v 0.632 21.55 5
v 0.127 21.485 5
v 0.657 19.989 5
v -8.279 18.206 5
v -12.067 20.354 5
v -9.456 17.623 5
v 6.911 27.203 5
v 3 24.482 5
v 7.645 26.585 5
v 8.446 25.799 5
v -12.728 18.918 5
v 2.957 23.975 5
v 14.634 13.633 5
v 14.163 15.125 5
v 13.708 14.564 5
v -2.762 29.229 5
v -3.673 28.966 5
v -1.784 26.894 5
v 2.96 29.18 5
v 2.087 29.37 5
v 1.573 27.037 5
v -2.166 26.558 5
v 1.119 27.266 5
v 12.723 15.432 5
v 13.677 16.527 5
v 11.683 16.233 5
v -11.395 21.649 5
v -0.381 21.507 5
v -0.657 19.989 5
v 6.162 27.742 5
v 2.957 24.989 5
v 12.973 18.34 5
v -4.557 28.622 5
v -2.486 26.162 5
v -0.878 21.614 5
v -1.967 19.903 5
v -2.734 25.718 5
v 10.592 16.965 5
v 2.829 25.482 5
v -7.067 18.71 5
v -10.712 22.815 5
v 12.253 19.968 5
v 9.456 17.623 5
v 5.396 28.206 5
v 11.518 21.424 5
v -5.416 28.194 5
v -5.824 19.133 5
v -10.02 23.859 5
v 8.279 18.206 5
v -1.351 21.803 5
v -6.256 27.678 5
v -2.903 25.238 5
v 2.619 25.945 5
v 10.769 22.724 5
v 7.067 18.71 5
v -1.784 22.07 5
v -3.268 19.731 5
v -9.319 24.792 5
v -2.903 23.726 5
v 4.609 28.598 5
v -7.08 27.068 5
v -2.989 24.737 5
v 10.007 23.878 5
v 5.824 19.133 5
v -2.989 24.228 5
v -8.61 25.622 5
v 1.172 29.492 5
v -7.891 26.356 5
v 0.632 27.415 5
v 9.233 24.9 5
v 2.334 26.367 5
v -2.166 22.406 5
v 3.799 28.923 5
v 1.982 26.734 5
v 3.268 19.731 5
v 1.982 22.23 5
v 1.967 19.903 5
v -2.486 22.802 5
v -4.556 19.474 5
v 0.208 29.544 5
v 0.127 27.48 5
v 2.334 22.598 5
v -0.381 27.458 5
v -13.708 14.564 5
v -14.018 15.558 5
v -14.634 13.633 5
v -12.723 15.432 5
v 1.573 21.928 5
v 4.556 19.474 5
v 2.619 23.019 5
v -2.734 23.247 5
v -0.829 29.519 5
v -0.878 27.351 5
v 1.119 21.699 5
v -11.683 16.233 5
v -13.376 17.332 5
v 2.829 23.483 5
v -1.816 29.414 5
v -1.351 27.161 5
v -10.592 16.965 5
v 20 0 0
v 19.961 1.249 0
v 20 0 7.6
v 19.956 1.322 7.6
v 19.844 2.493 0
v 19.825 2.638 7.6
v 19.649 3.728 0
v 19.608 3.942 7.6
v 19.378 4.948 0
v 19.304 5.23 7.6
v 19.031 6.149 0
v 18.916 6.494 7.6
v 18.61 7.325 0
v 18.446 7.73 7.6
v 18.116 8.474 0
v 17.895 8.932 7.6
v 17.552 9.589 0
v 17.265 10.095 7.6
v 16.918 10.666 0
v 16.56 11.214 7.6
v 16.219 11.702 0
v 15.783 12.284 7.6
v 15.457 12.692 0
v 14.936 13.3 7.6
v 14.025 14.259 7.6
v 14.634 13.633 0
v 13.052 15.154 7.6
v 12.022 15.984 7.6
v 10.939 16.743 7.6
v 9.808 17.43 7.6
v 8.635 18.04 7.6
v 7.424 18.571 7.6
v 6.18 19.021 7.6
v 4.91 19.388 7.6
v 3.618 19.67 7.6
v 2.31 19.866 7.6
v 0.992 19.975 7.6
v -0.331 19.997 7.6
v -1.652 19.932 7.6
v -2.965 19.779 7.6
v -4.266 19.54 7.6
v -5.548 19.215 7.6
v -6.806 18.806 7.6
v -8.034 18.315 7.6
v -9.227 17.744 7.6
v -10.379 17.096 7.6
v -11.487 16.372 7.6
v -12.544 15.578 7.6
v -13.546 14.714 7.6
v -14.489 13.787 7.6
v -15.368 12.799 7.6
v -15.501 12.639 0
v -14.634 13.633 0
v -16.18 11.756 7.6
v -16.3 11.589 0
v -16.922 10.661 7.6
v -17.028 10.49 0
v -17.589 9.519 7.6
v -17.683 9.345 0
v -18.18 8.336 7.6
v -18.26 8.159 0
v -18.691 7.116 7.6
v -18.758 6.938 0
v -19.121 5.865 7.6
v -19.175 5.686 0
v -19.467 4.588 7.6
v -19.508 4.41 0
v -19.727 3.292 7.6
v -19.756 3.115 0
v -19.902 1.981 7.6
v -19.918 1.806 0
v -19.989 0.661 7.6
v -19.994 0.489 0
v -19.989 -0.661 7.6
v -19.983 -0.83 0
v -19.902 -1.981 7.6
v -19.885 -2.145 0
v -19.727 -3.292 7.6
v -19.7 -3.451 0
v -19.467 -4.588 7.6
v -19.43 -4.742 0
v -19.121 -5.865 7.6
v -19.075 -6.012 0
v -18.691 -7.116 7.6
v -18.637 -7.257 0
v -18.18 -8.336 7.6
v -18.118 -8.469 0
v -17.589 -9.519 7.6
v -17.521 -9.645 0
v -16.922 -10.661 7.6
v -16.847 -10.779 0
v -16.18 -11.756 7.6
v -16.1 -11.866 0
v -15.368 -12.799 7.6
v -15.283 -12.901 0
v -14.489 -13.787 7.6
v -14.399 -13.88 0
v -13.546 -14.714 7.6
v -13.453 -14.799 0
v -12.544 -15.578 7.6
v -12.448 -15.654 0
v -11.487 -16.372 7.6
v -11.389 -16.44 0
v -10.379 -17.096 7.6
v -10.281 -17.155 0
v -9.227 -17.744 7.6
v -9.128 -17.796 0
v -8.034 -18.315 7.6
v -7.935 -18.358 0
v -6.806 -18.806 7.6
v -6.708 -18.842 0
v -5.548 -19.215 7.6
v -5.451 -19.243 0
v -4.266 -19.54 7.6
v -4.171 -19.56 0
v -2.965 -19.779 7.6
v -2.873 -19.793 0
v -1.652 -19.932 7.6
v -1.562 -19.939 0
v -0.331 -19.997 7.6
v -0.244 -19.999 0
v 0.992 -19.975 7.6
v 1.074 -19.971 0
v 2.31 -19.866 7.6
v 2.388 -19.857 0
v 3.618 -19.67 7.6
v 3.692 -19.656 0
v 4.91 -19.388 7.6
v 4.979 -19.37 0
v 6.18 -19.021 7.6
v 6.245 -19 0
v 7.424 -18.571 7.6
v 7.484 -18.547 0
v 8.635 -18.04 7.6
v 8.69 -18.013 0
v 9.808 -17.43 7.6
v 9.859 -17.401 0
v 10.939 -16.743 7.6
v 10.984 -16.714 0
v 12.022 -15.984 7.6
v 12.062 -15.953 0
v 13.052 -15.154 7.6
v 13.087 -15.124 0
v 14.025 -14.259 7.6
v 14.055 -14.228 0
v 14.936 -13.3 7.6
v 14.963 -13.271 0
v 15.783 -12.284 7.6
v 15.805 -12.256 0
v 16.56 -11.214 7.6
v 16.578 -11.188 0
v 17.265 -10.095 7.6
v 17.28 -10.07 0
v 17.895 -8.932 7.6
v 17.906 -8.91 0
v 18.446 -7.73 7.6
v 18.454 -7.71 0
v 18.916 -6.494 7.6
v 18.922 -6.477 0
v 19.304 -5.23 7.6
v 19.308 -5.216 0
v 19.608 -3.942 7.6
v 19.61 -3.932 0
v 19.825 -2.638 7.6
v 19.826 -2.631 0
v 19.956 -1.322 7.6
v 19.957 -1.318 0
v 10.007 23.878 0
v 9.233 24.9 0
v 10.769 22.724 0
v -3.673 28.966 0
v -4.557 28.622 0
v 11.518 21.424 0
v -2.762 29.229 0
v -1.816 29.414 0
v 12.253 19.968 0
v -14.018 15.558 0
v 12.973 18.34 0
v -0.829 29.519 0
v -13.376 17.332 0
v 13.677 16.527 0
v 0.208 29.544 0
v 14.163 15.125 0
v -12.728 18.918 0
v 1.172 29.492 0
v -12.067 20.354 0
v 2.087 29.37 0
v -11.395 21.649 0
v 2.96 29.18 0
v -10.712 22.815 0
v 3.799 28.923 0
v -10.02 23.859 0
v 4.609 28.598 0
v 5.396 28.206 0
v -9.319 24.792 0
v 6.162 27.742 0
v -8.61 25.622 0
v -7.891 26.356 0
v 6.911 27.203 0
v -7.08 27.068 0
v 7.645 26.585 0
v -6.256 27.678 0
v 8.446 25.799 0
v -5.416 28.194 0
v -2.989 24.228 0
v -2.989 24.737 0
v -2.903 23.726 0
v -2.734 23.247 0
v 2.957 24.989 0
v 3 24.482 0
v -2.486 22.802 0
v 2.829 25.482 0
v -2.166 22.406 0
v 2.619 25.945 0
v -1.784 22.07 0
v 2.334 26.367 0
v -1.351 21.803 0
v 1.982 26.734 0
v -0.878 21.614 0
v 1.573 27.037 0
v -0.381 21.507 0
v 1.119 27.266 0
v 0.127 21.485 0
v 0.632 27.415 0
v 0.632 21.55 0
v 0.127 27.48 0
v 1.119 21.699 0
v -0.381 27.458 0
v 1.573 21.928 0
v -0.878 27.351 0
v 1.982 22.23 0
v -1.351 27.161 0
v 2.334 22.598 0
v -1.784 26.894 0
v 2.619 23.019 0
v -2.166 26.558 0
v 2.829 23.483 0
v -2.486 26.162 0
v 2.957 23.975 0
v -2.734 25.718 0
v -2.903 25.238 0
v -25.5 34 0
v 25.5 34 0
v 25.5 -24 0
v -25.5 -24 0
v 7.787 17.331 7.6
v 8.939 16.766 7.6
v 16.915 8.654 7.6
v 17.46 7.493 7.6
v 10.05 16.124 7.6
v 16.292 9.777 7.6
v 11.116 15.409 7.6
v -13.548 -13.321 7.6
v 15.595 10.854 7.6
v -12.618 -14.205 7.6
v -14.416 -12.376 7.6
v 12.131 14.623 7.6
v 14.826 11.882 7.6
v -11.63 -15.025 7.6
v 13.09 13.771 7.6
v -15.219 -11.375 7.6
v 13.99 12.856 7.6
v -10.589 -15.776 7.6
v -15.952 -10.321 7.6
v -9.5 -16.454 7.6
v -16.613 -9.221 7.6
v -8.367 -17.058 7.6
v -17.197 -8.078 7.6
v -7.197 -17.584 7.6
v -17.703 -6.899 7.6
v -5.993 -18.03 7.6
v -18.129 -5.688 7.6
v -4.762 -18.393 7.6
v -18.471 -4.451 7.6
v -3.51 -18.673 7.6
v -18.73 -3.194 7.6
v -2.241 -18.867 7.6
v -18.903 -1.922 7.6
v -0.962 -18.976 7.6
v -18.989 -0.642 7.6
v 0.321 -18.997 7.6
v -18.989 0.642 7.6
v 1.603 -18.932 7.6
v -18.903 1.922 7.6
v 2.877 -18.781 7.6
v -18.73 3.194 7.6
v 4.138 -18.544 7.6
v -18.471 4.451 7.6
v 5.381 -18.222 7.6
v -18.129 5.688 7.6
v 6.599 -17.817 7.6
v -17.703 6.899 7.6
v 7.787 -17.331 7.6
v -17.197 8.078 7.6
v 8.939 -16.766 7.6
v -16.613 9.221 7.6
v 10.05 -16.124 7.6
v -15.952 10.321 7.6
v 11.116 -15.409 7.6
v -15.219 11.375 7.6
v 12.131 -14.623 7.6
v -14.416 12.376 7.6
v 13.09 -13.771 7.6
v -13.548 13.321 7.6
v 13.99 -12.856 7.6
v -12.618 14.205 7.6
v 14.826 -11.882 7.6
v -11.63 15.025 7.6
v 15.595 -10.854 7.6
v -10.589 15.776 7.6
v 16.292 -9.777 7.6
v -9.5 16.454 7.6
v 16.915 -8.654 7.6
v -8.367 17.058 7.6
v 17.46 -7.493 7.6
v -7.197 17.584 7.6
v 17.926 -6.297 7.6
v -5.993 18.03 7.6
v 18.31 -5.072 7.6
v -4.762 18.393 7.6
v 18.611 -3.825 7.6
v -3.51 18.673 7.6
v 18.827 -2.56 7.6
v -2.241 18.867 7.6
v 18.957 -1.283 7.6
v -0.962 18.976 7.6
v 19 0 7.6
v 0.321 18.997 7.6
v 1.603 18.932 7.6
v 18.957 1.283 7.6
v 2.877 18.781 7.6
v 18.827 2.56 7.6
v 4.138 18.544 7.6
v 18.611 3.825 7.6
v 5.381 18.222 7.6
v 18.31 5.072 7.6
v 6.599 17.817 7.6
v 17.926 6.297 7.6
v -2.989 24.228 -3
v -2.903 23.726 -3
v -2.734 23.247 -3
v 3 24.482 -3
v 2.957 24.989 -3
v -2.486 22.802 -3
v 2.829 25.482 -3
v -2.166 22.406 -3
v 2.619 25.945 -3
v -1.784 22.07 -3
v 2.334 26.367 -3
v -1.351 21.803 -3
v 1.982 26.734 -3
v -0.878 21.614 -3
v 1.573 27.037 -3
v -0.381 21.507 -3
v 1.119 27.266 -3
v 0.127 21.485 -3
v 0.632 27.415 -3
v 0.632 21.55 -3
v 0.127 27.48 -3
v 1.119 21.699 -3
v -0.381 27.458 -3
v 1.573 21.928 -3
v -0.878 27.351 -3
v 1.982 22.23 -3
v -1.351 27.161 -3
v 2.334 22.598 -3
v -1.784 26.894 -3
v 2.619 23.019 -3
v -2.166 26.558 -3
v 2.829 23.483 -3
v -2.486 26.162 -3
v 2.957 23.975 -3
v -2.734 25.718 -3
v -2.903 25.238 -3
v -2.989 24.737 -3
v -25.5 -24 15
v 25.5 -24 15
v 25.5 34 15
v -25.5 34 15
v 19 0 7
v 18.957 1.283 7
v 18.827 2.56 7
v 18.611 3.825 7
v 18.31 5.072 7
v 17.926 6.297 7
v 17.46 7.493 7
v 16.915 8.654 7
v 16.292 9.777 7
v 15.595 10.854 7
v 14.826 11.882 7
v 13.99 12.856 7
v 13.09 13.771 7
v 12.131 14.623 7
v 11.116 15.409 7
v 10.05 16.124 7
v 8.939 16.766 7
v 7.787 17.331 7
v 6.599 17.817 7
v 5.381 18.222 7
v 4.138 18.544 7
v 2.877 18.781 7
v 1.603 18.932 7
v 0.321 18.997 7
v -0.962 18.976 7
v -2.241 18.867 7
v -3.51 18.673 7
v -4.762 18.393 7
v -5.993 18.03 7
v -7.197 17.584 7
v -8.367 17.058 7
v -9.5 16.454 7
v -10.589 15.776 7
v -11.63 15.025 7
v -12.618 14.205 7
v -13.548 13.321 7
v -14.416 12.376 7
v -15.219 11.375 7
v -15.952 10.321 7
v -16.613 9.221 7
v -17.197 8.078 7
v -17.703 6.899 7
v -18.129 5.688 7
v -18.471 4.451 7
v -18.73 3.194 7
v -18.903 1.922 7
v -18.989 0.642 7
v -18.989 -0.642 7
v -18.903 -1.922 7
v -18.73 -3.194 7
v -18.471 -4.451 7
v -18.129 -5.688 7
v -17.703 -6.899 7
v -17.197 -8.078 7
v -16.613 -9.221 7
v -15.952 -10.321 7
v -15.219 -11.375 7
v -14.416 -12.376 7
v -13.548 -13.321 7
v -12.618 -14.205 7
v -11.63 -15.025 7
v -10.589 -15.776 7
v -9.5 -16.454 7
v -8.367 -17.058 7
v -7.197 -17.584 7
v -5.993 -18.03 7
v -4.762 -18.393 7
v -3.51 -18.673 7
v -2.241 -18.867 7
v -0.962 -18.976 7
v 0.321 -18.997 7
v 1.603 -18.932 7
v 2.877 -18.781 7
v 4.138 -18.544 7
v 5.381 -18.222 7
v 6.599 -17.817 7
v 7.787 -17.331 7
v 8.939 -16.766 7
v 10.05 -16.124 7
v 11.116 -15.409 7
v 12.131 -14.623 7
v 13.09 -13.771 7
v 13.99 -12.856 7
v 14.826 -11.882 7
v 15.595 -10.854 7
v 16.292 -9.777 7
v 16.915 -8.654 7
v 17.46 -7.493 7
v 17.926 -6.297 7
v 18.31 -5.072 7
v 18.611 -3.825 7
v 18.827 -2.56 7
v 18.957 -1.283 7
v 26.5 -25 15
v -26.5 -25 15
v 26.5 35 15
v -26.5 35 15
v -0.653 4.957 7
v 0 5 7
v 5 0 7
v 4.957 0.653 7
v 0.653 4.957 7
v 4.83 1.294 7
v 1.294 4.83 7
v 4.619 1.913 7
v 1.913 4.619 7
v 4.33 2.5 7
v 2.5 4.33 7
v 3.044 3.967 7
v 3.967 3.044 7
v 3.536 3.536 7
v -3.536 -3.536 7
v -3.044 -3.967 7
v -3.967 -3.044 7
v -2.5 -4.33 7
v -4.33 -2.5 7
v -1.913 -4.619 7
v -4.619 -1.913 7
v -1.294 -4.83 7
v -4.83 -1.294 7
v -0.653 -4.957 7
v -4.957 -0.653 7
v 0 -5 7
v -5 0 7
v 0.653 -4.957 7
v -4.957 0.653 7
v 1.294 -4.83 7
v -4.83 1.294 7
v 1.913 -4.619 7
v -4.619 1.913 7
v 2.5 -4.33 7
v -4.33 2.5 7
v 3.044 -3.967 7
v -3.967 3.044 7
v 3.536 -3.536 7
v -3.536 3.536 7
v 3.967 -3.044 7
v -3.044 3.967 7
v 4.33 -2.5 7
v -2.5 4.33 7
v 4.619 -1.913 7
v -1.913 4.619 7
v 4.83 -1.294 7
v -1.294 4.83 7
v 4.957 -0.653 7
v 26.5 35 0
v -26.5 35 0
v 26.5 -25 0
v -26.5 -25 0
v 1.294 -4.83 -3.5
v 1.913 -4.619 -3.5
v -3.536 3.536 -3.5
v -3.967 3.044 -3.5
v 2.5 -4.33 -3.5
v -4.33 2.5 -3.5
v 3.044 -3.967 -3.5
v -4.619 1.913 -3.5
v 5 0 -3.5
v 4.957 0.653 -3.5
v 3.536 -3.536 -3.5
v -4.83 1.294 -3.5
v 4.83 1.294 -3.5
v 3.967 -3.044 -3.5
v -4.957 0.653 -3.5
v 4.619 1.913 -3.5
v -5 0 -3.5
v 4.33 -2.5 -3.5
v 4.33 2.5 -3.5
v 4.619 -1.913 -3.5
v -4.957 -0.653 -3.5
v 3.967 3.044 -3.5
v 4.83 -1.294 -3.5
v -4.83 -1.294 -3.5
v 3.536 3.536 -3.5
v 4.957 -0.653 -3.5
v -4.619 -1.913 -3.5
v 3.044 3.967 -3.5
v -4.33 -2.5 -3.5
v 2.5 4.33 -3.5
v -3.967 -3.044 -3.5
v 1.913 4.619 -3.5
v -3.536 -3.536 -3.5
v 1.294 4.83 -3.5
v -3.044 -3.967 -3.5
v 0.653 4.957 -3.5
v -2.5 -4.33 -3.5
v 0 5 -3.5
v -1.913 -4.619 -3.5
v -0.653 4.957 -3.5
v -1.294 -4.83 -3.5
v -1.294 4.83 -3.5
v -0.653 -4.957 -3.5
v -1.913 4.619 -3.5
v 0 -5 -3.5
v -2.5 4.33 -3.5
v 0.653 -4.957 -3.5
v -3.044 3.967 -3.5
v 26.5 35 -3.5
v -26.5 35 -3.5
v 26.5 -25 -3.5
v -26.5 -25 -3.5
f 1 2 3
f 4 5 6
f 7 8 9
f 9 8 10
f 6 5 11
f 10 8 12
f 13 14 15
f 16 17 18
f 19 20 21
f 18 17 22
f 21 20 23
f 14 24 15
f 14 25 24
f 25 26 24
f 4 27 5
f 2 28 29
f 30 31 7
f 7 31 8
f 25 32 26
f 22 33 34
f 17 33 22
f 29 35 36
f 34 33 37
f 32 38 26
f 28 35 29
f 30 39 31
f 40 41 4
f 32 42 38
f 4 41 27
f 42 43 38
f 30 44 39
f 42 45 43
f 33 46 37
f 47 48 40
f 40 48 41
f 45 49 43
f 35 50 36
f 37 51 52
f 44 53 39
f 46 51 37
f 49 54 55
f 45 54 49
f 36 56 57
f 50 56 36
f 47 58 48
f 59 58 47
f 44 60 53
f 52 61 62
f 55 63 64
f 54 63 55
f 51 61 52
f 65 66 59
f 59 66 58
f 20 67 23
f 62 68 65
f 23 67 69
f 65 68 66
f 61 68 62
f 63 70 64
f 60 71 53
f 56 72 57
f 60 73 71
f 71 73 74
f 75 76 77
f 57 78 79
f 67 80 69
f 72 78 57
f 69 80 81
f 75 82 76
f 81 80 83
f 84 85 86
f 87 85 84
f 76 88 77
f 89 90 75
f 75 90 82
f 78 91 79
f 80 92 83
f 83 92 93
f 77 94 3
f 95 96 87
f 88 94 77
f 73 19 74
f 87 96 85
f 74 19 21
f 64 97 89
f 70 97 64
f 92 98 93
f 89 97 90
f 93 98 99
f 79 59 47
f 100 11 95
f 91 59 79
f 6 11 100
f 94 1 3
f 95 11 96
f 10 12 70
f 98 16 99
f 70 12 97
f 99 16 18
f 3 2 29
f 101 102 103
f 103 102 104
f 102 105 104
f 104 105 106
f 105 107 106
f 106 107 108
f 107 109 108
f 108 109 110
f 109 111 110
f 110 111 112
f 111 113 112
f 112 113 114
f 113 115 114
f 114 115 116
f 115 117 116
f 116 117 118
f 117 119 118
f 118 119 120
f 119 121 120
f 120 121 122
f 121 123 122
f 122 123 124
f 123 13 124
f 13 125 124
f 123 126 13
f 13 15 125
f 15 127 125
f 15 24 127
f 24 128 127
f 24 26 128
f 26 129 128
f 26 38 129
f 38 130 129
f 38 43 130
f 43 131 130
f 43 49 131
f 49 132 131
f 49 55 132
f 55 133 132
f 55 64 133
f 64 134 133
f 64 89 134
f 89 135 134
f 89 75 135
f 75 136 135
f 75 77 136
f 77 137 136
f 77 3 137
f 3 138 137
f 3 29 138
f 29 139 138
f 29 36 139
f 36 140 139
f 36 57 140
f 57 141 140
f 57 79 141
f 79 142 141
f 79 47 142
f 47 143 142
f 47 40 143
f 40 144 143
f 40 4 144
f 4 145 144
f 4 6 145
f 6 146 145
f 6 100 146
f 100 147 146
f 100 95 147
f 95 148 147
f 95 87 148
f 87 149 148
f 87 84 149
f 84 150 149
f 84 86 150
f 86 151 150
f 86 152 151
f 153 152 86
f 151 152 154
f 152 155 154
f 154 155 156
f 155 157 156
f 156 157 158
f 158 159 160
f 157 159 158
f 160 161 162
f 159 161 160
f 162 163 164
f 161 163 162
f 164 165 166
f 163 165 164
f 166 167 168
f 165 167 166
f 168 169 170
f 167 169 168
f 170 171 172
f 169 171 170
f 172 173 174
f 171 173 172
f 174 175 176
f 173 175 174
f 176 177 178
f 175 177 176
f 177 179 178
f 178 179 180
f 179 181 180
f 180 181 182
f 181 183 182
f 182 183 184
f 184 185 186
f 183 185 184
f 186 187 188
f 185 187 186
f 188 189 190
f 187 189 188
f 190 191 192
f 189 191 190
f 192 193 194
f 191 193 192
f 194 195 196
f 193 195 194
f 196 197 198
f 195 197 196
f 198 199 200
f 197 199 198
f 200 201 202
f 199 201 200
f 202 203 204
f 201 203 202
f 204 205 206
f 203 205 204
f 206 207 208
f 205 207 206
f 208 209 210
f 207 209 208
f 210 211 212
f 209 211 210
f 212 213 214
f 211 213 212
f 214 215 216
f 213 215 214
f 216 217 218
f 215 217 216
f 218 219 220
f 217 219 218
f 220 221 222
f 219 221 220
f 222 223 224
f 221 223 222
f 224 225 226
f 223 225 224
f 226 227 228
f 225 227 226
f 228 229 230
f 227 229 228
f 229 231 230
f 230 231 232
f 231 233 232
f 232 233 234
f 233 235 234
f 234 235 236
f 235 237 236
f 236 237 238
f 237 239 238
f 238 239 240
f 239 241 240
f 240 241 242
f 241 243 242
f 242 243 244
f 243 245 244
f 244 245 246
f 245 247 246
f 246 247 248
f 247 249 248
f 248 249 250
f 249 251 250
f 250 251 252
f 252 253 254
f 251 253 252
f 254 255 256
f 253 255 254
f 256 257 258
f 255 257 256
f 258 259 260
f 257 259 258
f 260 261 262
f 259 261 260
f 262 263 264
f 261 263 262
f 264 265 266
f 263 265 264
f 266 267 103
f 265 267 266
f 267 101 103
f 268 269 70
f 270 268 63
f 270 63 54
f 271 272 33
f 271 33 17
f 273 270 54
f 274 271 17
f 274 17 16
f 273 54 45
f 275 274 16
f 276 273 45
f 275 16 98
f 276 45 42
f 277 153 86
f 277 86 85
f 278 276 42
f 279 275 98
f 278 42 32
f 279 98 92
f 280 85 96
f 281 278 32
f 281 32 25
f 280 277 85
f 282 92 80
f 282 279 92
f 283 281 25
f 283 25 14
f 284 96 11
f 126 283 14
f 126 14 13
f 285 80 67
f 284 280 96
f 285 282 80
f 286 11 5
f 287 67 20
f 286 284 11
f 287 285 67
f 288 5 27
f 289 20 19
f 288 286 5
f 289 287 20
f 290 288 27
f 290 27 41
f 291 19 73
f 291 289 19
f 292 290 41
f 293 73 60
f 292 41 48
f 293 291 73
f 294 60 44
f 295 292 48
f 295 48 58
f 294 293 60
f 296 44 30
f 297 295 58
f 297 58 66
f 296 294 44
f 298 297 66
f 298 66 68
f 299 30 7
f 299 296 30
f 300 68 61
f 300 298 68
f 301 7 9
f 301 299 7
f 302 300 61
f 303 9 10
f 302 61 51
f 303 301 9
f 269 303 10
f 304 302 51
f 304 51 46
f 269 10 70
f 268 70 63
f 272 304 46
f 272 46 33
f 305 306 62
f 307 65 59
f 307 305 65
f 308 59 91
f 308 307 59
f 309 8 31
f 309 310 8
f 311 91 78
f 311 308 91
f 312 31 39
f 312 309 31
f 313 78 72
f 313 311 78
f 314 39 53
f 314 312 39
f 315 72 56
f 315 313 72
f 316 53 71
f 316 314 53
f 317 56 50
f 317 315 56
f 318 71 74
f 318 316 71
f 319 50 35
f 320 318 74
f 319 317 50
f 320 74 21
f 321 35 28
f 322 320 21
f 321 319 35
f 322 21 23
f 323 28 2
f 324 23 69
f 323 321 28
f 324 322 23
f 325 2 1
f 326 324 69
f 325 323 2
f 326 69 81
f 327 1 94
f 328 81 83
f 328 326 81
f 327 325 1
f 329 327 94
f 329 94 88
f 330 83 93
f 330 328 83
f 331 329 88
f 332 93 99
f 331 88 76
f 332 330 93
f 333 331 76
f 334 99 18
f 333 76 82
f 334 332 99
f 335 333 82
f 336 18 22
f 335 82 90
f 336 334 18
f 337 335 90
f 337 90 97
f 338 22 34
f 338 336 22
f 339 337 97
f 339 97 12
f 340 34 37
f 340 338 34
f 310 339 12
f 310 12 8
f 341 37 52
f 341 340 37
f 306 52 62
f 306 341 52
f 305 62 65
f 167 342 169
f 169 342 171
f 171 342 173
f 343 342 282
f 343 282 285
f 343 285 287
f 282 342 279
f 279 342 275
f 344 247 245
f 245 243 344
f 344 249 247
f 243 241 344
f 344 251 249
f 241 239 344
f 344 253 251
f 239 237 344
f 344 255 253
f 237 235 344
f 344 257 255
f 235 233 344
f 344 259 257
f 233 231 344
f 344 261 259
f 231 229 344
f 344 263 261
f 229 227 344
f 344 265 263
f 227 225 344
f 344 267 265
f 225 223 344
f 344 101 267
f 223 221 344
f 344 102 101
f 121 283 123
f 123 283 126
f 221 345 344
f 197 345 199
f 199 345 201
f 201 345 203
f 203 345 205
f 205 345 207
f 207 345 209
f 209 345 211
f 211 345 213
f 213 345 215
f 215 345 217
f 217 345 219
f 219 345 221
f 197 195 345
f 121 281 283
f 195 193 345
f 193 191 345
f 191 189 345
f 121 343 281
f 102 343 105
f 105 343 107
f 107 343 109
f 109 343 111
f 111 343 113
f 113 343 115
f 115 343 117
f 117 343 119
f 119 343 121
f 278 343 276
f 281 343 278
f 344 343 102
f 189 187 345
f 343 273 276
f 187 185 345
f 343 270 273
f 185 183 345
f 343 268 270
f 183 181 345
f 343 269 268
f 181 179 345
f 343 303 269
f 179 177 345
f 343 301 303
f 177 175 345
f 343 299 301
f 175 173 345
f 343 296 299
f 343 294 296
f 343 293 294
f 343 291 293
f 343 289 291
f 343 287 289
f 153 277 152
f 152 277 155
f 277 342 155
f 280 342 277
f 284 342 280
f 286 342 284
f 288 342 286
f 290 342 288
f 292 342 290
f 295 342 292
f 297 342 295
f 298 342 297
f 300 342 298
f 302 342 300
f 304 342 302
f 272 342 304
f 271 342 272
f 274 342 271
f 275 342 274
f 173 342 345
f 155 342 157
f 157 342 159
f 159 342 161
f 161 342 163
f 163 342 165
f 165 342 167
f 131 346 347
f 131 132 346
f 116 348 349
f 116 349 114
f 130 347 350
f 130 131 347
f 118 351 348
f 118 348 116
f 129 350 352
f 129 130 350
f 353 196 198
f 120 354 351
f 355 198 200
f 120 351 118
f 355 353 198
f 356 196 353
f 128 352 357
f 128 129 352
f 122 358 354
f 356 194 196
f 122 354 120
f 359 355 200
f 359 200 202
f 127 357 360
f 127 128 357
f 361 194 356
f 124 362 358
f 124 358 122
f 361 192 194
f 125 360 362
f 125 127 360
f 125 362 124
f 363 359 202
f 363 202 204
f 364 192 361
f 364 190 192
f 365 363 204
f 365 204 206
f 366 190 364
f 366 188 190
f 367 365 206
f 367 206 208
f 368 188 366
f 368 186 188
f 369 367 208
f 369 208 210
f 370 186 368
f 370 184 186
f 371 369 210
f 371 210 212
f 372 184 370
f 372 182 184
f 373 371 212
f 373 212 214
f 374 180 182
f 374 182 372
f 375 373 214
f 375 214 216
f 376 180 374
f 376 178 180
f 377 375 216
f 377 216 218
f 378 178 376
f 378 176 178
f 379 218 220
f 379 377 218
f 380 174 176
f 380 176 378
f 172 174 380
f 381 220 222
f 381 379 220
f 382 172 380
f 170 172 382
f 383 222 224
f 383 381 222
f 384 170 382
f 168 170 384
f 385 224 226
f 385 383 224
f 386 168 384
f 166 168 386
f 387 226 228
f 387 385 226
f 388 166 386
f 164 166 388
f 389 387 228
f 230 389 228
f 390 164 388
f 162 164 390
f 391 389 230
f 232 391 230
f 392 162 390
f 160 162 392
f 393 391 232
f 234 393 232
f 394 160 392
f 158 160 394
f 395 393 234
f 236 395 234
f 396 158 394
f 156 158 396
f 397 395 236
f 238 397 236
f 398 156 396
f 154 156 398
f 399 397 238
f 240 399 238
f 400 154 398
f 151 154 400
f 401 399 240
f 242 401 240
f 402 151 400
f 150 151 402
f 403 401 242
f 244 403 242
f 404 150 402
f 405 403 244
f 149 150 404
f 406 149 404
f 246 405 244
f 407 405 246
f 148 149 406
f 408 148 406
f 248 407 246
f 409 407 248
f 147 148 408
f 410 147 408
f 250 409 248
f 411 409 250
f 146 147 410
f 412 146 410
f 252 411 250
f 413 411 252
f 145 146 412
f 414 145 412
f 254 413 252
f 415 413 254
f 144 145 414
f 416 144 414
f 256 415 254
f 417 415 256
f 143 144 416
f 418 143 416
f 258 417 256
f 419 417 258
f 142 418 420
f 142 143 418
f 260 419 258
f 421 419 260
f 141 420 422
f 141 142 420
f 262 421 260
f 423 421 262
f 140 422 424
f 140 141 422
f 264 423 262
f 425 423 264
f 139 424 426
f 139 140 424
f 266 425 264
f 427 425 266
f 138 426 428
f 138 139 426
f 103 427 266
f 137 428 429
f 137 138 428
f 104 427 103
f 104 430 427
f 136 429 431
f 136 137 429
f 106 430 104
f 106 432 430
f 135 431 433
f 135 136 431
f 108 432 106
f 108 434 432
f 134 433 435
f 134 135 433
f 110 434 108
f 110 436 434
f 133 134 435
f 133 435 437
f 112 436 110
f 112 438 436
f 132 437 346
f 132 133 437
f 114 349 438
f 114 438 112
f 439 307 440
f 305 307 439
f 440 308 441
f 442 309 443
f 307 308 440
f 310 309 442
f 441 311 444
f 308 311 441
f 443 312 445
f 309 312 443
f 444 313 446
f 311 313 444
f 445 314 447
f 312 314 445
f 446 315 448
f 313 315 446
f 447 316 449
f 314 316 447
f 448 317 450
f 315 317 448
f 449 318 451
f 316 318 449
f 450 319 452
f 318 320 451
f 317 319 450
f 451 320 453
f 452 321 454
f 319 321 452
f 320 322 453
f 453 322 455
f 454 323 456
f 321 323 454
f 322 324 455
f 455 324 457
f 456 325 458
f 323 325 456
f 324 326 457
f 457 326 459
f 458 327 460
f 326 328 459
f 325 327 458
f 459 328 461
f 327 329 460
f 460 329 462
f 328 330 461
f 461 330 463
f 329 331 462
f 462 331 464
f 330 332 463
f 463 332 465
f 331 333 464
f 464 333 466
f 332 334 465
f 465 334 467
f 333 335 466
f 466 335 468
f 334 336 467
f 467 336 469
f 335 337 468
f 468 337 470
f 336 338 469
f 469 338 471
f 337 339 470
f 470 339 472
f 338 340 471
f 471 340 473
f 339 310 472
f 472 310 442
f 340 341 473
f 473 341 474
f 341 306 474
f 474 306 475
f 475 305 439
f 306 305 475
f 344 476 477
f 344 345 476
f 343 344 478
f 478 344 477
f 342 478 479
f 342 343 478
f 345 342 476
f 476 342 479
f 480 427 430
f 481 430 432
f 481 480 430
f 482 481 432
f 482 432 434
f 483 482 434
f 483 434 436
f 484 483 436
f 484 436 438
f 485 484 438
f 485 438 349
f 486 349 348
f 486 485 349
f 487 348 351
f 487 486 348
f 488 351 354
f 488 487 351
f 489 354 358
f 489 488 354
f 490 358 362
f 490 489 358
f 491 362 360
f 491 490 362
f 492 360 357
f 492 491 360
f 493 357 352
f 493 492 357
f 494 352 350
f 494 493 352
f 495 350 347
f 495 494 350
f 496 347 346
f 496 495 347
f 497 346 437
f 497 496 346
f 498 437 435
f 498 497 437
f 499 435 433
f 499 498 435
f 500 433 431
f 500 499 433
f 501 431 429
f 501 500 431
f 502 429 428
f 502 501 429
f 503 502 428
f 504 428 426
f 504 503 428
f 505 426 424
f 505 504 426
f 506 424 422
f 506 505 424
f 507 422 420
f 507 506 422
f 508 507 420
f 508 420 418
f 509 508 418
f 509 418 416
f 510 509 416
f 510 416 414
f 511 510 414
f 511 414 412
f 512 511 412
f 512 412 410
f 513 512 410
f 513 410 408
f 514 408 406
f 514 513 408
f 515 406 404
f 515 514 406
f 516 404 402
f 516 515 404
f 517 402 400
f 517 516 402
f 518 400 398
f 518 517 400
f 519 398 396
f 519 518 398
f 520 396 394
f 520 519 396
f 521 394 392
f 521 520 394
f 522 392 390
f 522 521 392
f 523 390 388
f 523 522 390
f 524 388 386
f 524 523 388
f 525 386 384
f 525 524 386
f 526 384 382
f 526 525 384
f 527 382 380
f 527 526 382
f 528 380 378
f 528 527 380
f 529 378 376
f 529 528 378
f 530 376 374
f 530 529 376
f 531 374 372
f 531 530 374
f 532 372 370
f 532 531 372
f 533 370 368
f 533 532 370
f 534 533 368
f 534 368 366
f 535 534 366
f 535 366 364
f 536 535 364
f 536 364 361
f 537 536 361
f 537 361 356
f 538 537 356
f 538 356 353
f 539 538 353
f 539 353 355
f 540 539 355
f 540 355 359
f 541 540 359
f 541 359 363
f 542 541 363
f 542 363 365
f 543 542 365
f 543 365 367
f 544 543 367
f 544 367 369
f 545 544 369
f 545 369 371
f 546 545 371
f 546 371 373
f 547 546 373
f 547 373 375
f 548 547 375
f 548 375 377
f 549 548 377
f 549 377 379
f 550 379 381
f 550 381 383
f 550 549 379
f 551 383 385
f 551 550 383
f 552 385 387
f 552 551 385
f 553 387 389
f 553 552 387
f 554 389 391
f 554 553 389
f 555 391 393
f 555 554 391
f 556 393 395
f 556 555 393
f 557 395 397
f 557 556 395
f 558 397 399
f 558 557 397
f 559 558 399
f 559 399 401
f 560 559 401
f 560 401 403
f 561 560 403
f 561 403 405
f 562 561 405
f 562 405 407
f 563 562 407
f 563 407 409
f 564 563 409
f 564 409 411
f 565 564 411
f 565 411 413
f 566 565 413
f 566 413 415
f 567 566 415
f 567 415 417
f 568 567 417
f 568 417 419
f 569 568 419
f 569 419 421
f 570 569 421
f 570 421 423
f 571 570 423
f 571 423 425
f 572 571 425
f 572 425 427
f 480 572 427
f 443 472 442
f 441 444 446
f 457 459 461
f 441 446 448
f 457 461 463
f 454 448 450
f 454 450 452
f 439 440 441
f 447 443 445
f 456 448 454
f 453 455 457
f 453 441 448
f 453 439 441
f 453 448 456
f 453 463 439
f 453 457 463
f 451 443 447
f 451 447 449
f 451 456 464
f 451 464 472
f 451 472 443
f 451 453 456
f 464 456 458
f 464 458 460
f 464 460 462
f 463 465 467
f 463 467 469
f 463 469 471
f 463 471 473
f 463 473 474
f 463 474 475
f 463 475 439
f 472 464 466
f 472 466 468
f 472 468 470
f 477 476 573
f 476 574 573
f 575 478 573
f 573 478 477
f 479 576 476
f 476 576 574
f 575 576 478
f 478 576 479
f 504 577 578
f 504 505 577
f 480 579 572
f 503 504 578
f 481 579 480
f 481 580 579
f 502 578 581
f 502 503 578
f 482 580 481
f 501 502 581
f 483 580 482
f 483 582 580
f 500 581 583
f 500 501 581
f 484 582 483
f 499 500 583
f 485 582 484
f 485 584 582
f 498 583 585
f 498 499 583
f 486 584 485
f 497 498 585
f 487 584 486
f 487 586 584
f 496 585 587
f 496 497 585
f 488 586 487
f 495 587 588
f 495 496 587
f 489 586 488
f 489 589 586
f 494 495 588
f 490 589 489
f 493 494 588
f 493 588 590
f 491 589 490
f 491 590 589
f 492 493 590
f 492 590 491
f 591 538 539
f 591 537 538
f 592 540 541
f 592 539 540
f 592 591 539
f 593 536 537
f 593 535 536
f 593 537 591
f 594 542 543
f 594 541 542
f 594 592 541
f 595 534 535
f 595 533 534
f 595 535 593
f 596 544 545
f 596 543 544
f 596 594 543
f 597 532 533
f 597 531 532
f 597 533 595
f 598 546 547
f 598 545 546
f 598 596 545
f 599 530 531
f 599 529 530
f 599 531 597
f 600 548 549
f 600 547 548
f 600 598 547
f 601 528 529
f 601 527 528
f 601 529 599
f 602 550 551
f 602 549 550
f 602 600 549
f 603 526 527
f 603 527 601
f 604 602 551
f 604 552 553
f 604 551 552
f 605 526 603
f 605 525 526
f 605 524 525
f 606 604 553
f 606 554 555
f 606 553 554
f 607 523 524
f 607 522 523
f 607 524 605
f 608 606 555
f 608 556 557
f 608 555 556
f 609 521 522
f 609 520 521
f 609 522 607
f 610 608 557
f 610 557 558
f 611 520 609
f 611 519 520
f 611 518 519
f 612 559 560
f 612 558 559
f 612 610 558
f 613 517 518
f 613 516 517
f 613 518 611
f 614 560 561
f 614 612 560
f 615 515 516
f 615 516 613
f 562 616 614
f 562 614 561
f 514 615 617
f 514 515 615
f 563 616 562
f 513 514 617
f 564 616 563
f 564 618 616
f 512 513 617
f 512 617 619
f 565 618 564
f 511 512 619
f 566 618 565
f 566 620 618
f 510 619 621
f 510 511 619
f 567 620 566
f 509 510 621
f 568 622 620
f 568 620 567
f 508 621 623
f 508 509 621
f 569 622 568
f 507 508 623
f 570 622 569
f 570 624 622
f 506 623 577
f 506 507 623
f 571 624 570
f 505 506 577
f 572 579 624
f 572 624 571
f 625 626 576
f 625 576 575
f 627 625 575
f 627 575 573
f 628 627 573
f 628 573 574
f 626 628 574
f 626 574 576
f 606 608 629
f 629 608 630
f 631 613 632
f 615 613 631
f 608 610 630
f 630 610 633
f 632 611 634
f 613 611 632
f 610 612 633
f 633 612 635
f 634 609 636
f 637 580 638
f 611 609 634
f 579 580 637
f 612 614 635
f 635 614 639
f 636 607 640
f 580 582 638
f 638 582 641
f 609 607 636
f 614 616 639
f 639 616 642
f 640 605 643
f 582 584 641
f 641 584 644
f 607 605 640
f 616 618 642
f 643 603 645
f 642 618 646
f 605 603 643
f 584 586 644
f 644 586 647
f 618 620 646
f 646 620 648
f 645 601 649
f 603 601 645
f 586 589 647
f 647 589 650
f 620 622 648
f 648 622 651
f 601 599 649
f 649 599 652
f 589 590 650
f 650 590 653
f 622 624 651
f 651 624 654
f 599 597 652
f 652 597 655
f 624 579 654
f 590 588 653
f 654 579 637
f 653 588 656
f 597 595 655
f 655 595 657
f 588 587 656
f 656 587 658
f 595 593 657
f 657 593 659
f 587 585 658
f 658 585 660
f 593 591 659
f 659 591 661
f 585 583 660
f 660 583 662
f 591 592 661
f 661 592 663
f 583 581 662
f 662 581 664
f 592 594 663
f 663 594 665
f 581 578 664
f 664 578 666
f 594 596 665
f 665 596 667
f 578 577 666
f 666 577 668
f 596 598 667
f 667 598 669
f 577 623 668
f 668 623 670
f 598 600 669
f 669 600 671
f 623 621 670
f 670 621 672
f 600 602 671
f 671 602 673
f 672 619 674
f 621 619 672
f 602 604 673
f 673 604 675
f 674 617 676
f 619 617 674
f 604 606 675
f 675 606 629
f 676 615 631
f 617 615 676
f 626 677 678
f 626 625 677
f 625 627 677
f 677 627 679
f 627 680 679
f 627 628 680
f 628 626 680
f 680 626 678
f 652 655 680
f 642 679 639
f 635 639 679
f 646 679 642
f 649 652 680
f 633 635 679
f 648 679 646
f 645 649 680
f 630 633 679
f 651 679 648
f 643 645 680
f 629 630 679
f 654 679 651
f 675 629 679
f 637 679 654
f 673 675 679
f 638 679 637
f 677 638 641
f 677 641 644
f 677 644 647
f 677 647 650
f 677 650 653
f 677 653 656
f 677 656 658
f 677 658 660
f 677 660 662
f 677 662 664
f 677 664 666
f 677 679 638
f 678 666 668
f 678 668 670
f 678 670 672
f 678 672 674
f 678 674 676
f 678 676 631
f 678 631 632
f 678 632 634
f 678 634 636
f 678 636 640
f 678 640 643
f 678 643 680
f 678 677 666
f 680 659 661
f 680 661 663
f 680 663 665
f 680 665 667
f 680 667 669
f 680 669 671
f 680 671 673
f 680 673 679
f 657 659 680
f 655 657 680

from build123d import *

# Parameters (mm, degrees)
SKETCH_R             = 20
PAD_DEPTH            = 7
SKETCH001_R          = 3
PAD001_DEPTH         = 5
SKETCH002_R          = 20
SKETCH002_R_2        = 19
PAD002_DEPTH         = 7.6
SKETCH003_W          = 53
SKETCH003_H          = 60
PAD003_DEPTH         = 3.5
SKETCH004_W          = 53
SKETCH004_H          = 60
SKETCH004_W_2        = 51
SKETCH004_H_2        = 58
PAD004_DEPTH         = 15
SKETCH006_R          = 3
POCKET_DEPTH         = 3
SKETCH005_R          = 5
POCKET001_DEPTH      = 3.501
POCKET001_DEPTH_BACK = -15.001


with BuildPart() as part:
    # Sketch → Pad (new body)
    with BuildSketch(Plane.XY):
        Circle(SKETCH_R)
    extrude(amount=PAD_DEPTH)

    # Sketch001 → Pad001 (join)
    with BuildSketch(Plane.XY):
        with BuildLine():
            add(Edge.make_bspline(
                [(-14.633789, 13.632763), (-10.829835, 26.268087), (0, 32.822822), (10.829835, 26.268087), (14.633789, 13.632763)],
                knots=[0, 0, 0, 0, 0.5, 1, 1, 1, 1], degree=3))
            Line((14.633789, 13.632763), (-14.633789, 13.632763))
        make_face()
        with Locations((0, 24.48224)):
            Circle(SKETCH001_R, mode=Mode.SUBTRACT)
    extrude(amount=PAD001_DEPTH)

    # Sketch002 → Pad002 (join)
    with BuildSketch(Plane.XY):
        Circle(SKETCH002_R)
        Circle(SKETCH002_R_2, mode=Mode.SUBTRACT)
    extrude(amount=PAD002_DEPTH)

    # Sketch003 → Pad003 (join)
    with BuildSketch(Plane.XY):
        with Locations((0, 5)):
            Rectangle(SKETCH003_W, SKETCH003_H)
    extrude(amount=-PAD003_DEPTH)

    # Sketch004 → Pad004 (join)
    with BuildSketch(Plane.XY):
        with Locations((0, 5)):
            Rectangle(SKETCH004_W, SKETCH004_H)
        with Locations((0, 5)):
            Rectangle(SKETCH004_W_2, SKETCH004_H_2, mode=Mode.SUBTRACT)
    extrude(amount=PAD004_DEPTH)

    # Sketch006 → Pocket (cut)
    with BuildSketch(Plane.XY):
        with Locations((0, 24.48224)):
            Circle(SKETCH006_R)
    extrude(amount=-POCKET_DEPTH, mode=Mode.SUBTRACT)

    # Sketch005 → Pocket001 (cut, two sides)
    with BuildSketch(Plane.XY) as pocket001_sk:
        Circle(SKETCH005_R)
    extrude(amount=-POCKET001_DEPTH, mode=Mode.SUBTRACT)
    extrude(pocket001_sk.sketch, amount=-POCKET001_DEPTH_BACK, mode=Mode.SUBTRACT)


solid = part.part
